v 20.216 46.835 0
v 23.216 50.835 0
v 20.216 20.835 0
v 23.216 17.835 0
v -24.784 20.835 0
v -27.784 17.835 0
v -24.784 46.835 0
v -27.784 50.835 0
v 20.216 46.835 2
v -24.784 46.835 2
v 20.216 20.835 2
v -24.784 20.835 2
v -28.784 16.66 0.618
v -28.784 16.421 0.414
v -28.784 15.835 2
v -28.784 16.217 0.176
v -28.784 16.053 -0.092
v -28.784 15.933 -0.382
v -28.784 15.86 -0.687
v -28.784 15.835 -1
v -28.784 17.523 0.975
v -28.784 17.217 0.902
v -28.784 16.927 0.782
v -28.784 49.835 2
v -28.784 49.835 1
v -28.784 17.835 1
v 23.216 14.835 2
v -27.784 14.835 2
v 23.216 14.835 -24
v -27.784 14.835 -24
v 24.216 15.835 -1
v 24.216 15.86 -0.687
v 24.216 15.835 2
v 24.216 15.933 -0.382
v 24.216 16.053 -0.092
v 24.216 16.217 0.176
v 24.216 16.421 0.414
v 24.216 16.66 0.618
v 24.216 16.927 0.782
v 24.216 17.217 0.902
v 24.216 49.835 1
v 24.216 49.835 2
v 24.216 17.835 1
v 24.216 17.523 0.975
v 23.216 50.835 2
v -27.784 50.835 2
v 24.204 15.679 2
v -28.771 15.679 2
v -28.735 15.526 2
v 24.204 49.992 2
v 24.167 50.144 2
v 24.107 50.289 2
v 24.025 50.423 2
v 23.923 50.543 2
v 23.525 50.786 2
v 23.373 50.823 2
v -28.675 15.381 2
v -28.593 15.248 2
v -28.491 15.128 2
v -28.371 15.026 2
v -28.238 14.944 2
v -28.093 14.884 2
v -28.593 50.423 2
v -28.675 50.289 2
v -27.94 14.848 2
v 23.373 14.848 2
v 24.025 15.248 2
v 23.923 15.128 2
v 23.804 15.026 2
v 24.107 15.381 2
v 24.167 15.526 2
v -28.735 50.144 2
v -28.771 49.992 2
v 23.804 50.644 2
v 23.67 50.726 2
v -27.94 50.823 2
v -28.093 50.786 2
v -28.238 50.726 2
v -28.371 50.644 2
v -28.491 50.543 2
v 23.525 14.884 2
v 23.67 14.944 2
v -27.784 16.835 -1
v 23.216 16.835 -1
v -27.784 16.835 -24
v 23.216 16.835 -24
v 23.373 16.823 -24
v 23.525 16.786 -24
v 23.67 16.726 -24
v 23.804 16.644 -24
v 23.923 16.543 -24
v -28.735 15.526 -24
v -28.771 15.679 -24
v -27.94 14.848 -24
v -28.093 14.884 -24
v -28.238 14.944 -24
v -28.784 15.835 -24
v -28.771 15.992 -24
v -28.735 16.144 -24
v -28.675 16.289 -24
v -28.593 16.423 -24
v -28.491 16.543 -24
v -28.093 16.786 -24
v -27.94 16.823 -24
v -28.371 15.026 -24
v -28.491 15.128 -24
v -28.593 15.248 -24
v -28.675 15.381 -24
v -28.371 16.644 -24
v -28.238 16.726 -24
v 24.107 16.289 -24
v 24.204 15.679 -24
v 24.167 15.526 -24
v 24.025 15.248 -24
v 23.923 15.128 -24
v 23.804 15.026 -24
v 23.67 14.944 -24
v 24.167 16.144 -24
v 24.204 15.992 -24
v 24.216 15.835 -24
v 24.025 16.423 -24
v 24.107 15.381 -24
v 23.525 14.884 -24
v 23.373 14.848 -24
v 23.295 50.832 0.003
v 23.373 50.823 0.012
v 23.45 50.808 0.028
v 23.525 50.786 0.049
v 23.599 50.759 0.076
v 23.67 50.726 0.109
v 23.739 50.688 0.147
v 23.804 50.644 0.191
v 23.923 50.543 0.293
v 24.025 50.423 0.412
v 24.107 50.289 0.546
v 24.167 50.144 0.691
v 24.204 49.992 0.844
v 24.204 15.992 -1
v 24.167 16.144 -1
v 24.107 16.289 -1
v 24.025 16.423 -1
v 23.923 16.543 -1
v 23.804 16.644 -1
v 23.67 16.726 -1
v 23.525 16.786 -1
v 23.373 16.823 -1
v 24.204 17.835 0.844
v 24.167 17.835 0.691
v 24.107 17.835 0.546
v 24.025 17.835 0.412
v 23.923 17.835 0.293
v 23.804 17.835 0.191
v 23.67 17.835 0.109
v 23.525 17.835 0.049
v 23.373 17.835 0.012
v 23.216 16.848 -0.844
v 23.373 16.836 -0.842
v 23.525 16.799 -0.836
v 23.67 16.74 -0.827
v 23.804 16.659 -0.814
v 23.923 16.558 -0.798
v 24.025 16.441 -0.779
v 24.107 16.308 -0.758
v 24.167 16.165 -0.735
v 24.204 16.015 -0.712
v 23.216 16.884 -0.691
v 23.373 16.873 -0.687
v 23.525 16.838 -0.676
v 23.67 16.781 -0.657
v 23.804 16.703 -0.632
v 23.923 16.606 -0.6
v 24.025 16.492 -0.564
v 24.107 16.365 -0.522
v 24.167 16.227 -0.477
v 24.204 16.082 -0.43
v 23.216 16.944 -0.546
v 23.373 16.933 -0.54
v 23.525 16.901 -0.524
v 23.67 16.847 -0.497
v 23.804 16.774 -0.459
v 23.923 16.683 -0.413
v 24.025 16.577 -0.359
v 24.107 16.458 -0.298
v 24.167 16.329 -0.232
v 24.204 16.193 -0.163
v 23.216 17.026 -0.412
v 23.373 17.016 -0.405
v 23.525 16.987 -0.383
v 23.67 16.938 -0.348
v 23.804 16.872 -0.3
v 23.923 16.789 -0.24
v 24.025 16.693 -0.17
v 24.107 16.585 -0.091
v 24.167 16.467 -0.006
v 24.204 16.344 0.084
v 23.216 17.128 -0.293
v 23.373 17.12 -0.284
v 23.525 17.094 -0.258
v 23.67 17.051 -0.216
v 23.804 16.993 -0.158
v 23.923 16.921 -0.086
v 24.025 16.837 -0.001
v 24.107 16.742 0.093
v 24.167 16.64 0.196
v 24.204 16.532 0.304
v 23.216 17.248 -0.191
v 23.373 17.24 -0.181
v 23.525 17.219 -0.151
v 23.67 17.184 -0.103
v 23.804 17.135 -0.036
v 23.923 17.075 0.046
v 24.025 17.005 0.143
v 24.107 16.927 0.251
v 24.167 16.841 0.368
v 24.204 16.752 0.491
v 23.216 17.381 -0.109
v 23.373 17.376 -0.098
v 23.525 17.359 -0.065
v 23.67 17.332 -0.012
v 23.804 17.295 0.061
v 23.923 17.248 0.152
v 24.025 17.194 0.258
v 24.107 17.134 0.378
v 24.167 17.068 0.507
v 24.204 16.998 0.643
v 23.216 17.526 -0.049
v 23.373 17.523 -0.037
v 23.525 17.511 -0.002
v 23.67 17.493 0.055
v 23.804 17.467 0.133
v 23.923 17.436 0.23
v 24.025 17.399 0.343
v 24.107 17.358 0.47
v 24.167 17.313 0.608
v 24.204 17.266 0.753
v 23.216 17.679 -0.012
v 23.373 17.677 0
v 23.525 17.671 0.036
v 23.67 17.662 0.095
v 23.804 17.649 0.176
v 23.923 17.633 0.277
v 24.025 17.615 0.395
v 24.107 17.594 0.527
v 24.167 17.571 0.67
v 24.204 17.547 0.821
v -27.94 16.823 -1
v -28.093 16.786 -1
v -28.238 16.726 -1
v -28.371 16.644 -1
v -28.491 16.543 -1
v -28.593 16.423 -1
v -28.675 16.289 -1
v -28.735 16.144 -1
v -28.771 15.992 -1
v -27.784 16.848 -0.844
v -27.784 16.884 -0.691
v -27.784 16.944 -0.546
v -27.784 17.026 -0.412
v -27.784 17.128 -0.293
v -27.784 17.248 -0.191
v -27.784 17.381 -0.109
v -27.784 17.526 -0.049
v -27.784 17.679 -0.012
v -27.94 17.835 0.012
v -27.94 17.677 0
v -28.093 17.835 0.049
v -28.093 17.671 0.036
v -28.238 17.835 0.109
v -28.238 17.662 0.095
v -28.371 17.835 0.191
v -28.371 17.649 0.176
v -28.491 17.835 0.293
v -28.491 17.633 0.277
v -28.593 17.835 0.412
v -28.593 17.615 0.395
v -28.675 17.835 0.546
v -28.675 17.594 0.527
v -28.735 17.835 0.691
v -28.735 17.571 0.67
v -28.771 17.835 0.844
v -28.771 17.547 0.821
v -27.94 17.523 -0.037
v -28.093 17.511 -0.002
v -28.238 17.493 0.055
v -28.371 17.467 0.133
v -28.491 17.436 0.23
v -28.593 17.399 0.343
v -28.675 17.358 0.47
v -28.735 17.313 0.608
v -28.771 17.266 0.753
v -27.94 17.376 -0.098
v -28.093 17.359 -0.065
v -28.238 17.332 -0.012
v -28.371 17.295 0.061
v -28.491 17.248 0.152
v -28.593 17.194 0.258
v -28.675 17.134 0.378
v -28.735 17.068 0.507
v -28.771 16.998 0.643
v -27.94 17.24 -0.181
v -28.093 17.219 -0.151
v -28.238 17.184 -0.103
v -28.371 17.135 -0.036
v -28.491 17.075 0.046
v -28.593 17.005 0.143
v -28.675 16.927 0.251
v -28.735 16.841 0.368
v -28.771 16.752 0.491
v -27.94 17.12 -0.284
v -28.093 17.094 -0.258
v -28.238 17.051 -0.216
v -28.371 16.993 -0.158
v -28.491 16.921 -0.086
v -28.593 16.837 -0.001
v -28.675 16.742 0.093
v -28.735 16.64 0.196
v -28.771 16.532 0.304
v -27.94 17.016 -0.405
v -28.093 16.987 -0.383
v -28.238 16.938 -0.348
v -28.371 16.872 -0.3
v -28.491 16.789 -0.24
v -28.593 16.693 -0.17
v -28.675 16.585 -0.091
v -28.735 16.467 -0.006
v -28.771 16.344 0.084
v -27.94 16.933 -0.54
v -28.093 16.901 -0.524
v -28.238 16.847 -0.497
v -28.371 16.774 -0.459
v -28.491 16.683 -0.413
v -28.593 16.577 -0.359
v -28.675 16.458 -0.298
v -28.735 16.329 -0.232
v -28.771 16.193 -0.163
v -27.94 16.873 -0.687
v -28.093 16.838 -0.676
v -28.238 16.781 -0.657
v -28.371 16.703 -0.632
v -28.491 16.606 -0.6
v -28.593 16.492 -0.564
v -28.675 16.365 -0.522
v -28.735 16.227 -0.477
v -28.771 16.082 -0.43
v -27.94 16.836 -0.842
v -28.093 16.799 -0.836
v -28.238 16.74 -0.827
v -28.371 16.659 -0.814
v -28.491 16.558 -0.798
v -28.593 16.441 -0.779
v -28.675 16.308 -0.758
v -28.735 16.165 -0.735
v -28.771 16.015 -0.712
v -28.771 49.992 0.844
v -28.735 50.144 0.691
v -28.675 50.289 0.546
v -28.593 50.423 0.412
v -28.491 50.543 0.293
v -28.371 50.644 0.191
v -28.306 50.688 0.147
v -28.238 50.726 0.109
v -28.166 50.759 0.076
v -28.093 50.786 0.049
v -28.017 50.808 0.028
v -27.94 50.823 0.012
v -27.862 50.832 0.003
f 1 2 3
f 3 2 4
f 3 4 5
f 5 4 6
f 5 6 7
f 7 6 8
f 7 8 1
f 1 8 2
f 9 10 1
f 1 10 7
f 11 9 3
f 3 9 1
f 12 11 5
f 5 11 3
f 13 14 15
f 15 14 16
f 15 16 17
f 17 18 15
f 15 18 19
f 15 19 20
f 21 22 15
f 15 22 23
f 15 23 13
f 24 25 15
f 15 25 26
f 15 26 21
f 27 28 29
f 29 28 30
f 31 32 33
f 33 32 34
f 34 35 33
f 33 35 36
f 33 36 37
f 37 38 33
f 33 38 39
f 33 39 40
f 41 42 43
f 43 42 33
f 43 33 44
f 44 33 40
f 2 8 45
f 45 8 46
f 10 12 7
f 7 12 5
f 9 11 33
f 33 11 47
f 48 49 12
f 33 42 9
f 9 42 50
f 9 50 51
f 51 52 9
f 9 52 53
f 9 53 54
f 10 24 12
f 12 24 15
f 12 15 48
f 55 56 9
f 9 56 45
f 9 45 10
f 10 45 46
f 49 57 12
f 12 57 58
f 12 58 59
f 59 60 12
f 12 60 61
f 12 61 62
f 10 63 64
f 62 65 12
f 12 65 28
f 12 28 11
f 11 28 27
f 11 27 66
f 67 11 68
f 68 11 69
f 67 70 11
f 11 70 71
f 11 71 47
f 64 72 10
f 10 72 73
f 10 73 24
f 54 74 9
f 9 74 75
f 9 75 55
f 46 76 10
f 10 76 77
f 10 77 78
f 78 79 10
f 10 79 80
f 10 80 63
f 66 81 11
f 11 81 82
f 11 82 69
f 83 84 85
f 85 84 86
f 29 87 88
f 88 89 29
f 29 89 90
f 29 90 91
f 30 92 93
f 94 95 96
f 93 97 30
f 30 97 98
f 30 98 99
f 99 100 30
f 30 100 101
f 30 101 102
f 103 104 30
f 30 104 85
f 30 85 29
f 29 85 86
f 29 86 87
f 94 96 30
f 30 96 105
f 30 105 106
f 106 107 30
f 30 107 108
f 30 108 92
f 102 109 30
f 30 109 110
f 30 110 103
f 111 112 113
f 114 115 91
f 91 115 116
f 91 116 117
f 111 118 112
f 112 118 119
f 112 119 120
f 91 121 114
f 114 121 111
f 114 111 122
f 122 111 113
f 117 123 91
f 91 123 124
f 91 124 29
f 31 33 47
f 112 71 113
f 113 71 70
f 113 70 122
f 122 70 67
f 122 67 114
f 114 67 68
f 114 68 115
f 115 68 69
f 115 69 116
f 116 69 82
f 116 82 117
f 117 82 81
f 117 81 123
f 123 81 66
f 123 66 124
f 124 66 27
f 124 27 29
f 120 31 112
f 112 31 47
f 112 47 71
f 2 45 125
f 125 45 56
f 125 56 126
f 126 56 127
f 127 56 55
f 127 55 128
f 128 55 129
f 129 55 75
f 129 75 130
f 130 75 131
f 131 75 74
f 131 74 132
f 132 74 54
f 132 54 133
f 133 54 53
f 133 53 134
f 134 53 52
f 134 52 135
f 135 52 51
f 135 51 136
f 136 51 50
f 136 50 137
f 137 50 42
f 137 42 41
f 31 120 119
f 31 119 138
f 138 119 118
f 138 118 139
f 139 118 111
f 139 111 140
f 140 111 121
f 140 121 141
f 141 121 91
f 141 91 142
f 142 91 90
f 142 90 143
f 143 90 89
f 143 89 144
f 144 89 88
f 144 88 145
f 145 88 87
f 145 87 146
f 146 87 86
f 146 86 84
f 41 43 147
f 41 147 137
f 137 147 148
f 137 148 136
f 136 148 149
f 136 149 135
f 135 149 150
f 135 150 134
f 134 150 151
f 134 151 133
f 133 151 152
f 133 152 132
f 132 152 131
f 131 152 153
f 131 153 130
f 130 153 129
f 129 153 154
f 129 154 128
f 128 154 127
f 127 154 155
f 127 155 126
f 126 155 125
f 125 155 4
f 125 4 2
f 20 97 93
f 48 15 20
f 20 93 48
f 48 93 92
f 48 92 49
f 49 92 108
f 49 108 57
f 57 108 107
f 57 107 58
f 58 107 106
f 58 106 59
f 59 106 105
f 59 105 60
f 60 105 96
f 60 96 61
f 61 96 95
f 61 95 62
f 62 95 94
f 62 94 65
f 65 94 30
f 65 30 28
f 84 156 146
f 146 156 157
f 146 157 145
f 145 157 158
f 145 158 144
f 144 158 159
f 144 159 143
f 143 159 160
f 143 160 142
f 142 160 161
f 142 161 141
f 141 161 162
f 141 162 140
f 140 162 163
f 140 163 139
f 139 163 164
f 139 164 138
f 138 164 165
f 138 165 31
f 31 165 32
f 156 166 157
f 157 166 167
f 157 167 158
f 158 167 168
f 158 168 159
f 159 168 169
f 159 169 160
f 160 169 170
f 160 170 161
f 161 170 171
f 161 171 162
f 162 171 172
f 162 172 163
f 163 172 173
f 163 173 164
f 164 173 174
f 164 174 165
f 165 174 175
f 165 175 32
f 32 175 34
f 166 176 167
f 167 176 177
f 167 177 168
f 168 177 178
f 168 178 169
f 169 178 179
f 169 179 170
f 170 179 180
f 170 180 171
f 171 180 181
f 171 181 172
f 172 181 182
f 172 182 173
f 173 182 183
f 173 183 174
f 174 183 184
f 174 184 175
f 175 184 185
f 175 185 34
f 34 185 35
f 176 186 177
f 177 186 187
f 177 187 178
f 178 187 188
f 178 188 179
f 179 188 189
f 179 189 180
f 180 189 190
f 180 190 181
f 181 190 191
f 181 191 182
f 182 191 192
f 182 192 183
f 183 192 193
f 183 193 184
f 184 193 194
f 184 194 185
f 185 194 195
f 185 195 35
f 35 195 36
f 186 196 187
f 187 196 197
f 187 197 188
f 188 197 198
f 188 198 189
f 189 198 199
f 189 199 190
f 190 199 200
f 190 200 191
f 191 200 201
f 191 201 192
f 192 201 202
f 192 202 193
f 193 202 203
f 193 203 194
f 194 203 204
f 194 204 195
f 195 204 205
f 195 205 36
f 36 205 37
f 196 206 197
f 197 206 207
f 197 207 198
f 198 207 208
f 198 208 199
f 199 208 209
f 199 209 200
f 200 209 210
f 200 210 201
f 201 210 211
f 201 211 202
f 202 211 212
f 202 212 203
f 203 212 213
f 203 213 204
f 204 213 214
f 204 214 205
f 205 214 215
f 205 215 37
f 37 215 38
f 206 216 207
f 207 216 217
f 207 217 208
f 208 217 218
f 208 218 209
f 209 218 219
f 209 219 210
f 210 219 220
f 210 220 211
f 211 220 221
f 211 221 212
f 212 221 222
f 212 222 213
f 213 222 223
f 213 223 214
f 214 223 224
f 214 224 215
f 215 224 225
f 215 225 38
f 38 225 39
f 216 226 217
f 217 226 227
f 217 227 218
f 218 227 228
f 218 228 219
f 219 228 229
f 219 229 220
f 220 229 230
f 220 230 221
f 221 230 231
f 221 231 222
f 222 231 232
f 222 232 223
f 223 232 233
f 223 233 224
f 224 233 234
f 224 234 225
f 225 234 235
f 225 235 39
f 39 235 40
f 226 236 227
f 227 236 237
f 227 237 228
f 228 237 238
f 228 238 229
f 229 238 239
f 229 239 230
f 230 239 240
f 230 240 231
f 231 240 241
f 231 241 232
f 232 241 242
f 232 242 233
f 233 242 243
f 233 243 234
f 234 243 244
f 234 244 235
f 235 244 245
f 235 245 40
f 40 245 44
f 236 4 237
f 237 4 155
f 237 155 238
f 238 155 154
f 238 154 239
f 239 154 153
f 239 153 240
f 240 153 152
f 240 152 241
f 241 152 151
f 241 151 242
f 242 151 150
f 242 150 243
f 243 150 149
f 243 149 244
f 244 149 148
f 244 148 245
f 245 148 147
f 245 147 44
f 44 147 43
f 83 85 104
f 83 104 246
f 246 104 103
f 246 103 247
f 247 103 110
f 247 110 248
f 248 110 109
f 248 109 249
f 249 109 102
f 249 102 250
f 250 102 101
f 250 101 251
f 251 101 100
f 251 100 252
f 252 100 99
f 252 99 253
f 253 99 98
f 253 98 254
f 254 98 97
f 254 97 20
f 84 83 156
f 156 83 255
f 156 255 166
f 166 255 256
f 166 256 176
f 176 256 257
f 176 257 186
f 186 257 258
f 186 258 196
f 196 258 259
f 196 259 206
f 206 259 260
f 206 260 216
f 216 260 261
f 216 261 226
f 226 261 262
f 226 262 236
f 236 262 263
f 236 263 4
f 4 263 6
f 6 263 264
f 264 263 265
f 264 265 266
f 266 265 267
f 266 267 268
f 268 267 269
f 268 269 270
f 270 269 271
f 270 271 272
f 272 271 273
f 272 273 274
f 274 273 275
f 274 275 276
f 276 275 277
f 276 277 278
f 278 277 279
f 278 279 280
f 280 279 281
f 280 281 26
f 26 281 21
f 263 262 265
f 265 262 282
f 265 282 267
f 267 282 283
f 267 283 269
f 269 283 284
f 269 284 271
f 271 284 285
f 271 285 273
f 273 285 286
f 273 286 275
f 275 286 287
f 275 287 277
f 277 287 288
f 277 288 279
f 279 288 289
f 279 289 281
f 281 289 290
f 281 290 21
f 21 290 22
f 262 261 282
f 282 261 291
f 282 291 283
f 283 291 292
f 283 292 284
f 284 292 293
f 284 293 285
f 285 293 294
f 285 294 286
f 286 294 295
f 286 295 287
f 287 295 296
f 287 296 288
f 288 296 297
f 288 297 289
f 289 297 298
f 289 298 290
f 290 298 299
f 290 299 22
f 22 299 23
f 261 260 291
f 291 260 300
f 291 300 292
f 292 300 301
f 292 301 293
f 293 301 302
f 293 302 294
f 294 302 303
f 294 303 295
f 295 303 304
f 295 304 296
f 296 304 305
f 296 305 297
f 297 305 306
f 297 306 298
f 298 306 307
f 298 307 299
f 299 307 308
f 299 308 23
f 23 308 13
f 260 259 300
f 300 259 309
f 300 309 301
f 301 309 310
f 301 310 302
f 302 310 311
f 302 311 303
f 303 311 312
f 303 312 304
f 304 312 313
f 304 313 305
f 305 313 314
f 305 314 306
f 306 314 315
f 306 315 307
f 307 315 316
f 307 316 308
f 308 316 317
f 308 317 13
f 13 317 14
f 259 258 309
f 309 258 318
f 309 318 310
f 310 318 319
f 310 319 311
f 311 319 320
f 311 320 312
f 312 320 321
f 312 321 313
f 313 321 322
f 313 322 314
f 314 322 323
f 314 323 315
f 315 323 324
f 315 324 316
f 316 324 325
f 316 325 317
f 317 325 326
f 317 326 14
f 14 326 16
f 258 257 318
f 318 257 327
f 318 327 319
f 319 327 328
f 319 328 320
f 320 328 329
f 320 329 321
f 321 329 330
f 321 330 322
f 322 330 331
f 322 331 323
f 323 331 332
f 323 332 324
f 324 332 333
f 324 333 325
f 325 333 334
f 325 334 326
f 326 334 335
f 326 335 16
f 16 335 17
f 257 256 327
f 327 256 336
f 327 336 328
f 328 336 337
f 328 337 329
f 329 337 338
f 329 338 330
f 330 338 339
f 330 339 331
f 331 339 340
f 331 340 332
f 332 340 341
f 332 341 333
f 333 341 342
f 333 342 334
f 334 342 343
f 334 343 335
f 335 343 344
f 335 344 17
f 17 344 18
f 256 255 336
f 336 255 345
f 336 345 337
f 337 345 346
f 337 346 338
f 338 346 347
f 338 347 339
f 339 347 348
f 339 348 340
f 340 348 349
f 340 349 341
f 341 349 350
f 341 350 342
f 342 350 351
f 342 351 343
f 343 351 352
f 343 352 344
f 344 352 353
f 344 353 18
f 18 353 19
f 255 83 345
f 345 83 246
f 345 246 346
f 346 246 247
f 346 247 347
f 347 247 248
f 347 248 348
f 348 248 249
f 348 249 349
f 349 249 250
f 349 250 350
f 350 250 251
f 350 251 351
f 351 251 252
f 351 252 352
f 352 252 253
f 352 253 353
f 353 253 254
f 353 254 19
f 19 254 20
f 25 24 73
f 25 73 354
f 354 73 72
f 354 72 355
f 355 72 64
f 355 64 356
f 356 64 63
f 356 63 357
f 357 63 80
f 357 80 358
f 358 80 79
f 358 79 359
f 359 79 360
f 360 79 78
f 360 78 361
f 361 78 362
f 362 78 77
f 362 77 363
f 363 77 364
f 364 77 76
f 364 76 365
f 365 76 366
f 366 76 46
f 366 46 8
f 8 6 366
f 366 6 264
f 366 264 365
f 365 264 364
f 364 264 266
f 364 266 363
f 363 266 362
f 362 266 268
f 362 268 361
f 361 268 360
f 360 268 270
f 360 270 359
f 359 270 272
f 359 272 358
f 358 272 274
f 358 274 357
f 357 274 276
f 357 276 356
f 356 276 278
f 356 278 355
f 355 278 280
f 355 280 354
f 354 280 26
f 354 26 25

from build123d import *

# Parameters (mm, degrees)
SKETCH1_W           = 53
SKETCH1_H           = 2
SKETCH1_H_2         = 34
SKETCH1_W_2         = 45
SKETCH1_H_3         = 26
BOSS_EXTRUDE1_DEPTH = 2
SKETCH1_5_W         = 53
SKETCH1_5_H         = 2
BOSS_EXTRUDE4_DEPTH = 24
FILLET2_R           = 1


with BuildPart() as part:
    # Sketch1 → Boss-Extrude1 (new body)
    # profile 1 of 2: a face of its own
    with BuildSketch(Plane.XY):
        with Locations((-2.283686935, 15.83542926)):
            Rectangle(SKETCH1_W, SKETCH1_H)
    # profile 2 of 2: a face of its own
    with BuildSketch(Plane.XY):
        with Locations((-2.283686935, 33.83542926)):
            Rectangle(SKETCH1_W, SKETCH1_H_2)
        with Locations((-2.283686935, 33.83542926)):
            Rectangle(SKETCH1_W_2, SKETCH1_H_3, mode=Mode.SUBTRACT)
    extrude(amount=BOSS_EXTRUDE1_DEPTH)

    # Sketch1<5> → Boss-Extrude4 (add)
    with BuildSketch(Plane.XY):
        with Locations((-2.283686935, 15.83542926)):
            Rectangle(SKETCH1_5_W, SKETCH1_5_H)
    extrude(amount=-BOSS_EXTRUDE4_DEPTH)

    # Fillet2
    fillet2_edges = [part.edges().sort_by_distance(p)[0] for p in [
        (-28.783686935, 33.83542926, 0),
        (24.216313065, 33.83542926, 0),
        (-2.283686935, 16.83542926, 0),
        (-28.783686935, 16.83542926, -12),
        (24.216313065, 16.83542926, -12),
        (24.216313065, 50.83542926, 1),
        (24.216313065, 14.83542926, -11),
        (-28.783686935, 50.83542926, 1),
        (-28.783686935, 14.83542926, -11),
    ]]
    fillet(fillet2_edges, radius=FILLET2_R - 0.0001)  # a hair under: the kernel refuses the full size


solid = part.part
